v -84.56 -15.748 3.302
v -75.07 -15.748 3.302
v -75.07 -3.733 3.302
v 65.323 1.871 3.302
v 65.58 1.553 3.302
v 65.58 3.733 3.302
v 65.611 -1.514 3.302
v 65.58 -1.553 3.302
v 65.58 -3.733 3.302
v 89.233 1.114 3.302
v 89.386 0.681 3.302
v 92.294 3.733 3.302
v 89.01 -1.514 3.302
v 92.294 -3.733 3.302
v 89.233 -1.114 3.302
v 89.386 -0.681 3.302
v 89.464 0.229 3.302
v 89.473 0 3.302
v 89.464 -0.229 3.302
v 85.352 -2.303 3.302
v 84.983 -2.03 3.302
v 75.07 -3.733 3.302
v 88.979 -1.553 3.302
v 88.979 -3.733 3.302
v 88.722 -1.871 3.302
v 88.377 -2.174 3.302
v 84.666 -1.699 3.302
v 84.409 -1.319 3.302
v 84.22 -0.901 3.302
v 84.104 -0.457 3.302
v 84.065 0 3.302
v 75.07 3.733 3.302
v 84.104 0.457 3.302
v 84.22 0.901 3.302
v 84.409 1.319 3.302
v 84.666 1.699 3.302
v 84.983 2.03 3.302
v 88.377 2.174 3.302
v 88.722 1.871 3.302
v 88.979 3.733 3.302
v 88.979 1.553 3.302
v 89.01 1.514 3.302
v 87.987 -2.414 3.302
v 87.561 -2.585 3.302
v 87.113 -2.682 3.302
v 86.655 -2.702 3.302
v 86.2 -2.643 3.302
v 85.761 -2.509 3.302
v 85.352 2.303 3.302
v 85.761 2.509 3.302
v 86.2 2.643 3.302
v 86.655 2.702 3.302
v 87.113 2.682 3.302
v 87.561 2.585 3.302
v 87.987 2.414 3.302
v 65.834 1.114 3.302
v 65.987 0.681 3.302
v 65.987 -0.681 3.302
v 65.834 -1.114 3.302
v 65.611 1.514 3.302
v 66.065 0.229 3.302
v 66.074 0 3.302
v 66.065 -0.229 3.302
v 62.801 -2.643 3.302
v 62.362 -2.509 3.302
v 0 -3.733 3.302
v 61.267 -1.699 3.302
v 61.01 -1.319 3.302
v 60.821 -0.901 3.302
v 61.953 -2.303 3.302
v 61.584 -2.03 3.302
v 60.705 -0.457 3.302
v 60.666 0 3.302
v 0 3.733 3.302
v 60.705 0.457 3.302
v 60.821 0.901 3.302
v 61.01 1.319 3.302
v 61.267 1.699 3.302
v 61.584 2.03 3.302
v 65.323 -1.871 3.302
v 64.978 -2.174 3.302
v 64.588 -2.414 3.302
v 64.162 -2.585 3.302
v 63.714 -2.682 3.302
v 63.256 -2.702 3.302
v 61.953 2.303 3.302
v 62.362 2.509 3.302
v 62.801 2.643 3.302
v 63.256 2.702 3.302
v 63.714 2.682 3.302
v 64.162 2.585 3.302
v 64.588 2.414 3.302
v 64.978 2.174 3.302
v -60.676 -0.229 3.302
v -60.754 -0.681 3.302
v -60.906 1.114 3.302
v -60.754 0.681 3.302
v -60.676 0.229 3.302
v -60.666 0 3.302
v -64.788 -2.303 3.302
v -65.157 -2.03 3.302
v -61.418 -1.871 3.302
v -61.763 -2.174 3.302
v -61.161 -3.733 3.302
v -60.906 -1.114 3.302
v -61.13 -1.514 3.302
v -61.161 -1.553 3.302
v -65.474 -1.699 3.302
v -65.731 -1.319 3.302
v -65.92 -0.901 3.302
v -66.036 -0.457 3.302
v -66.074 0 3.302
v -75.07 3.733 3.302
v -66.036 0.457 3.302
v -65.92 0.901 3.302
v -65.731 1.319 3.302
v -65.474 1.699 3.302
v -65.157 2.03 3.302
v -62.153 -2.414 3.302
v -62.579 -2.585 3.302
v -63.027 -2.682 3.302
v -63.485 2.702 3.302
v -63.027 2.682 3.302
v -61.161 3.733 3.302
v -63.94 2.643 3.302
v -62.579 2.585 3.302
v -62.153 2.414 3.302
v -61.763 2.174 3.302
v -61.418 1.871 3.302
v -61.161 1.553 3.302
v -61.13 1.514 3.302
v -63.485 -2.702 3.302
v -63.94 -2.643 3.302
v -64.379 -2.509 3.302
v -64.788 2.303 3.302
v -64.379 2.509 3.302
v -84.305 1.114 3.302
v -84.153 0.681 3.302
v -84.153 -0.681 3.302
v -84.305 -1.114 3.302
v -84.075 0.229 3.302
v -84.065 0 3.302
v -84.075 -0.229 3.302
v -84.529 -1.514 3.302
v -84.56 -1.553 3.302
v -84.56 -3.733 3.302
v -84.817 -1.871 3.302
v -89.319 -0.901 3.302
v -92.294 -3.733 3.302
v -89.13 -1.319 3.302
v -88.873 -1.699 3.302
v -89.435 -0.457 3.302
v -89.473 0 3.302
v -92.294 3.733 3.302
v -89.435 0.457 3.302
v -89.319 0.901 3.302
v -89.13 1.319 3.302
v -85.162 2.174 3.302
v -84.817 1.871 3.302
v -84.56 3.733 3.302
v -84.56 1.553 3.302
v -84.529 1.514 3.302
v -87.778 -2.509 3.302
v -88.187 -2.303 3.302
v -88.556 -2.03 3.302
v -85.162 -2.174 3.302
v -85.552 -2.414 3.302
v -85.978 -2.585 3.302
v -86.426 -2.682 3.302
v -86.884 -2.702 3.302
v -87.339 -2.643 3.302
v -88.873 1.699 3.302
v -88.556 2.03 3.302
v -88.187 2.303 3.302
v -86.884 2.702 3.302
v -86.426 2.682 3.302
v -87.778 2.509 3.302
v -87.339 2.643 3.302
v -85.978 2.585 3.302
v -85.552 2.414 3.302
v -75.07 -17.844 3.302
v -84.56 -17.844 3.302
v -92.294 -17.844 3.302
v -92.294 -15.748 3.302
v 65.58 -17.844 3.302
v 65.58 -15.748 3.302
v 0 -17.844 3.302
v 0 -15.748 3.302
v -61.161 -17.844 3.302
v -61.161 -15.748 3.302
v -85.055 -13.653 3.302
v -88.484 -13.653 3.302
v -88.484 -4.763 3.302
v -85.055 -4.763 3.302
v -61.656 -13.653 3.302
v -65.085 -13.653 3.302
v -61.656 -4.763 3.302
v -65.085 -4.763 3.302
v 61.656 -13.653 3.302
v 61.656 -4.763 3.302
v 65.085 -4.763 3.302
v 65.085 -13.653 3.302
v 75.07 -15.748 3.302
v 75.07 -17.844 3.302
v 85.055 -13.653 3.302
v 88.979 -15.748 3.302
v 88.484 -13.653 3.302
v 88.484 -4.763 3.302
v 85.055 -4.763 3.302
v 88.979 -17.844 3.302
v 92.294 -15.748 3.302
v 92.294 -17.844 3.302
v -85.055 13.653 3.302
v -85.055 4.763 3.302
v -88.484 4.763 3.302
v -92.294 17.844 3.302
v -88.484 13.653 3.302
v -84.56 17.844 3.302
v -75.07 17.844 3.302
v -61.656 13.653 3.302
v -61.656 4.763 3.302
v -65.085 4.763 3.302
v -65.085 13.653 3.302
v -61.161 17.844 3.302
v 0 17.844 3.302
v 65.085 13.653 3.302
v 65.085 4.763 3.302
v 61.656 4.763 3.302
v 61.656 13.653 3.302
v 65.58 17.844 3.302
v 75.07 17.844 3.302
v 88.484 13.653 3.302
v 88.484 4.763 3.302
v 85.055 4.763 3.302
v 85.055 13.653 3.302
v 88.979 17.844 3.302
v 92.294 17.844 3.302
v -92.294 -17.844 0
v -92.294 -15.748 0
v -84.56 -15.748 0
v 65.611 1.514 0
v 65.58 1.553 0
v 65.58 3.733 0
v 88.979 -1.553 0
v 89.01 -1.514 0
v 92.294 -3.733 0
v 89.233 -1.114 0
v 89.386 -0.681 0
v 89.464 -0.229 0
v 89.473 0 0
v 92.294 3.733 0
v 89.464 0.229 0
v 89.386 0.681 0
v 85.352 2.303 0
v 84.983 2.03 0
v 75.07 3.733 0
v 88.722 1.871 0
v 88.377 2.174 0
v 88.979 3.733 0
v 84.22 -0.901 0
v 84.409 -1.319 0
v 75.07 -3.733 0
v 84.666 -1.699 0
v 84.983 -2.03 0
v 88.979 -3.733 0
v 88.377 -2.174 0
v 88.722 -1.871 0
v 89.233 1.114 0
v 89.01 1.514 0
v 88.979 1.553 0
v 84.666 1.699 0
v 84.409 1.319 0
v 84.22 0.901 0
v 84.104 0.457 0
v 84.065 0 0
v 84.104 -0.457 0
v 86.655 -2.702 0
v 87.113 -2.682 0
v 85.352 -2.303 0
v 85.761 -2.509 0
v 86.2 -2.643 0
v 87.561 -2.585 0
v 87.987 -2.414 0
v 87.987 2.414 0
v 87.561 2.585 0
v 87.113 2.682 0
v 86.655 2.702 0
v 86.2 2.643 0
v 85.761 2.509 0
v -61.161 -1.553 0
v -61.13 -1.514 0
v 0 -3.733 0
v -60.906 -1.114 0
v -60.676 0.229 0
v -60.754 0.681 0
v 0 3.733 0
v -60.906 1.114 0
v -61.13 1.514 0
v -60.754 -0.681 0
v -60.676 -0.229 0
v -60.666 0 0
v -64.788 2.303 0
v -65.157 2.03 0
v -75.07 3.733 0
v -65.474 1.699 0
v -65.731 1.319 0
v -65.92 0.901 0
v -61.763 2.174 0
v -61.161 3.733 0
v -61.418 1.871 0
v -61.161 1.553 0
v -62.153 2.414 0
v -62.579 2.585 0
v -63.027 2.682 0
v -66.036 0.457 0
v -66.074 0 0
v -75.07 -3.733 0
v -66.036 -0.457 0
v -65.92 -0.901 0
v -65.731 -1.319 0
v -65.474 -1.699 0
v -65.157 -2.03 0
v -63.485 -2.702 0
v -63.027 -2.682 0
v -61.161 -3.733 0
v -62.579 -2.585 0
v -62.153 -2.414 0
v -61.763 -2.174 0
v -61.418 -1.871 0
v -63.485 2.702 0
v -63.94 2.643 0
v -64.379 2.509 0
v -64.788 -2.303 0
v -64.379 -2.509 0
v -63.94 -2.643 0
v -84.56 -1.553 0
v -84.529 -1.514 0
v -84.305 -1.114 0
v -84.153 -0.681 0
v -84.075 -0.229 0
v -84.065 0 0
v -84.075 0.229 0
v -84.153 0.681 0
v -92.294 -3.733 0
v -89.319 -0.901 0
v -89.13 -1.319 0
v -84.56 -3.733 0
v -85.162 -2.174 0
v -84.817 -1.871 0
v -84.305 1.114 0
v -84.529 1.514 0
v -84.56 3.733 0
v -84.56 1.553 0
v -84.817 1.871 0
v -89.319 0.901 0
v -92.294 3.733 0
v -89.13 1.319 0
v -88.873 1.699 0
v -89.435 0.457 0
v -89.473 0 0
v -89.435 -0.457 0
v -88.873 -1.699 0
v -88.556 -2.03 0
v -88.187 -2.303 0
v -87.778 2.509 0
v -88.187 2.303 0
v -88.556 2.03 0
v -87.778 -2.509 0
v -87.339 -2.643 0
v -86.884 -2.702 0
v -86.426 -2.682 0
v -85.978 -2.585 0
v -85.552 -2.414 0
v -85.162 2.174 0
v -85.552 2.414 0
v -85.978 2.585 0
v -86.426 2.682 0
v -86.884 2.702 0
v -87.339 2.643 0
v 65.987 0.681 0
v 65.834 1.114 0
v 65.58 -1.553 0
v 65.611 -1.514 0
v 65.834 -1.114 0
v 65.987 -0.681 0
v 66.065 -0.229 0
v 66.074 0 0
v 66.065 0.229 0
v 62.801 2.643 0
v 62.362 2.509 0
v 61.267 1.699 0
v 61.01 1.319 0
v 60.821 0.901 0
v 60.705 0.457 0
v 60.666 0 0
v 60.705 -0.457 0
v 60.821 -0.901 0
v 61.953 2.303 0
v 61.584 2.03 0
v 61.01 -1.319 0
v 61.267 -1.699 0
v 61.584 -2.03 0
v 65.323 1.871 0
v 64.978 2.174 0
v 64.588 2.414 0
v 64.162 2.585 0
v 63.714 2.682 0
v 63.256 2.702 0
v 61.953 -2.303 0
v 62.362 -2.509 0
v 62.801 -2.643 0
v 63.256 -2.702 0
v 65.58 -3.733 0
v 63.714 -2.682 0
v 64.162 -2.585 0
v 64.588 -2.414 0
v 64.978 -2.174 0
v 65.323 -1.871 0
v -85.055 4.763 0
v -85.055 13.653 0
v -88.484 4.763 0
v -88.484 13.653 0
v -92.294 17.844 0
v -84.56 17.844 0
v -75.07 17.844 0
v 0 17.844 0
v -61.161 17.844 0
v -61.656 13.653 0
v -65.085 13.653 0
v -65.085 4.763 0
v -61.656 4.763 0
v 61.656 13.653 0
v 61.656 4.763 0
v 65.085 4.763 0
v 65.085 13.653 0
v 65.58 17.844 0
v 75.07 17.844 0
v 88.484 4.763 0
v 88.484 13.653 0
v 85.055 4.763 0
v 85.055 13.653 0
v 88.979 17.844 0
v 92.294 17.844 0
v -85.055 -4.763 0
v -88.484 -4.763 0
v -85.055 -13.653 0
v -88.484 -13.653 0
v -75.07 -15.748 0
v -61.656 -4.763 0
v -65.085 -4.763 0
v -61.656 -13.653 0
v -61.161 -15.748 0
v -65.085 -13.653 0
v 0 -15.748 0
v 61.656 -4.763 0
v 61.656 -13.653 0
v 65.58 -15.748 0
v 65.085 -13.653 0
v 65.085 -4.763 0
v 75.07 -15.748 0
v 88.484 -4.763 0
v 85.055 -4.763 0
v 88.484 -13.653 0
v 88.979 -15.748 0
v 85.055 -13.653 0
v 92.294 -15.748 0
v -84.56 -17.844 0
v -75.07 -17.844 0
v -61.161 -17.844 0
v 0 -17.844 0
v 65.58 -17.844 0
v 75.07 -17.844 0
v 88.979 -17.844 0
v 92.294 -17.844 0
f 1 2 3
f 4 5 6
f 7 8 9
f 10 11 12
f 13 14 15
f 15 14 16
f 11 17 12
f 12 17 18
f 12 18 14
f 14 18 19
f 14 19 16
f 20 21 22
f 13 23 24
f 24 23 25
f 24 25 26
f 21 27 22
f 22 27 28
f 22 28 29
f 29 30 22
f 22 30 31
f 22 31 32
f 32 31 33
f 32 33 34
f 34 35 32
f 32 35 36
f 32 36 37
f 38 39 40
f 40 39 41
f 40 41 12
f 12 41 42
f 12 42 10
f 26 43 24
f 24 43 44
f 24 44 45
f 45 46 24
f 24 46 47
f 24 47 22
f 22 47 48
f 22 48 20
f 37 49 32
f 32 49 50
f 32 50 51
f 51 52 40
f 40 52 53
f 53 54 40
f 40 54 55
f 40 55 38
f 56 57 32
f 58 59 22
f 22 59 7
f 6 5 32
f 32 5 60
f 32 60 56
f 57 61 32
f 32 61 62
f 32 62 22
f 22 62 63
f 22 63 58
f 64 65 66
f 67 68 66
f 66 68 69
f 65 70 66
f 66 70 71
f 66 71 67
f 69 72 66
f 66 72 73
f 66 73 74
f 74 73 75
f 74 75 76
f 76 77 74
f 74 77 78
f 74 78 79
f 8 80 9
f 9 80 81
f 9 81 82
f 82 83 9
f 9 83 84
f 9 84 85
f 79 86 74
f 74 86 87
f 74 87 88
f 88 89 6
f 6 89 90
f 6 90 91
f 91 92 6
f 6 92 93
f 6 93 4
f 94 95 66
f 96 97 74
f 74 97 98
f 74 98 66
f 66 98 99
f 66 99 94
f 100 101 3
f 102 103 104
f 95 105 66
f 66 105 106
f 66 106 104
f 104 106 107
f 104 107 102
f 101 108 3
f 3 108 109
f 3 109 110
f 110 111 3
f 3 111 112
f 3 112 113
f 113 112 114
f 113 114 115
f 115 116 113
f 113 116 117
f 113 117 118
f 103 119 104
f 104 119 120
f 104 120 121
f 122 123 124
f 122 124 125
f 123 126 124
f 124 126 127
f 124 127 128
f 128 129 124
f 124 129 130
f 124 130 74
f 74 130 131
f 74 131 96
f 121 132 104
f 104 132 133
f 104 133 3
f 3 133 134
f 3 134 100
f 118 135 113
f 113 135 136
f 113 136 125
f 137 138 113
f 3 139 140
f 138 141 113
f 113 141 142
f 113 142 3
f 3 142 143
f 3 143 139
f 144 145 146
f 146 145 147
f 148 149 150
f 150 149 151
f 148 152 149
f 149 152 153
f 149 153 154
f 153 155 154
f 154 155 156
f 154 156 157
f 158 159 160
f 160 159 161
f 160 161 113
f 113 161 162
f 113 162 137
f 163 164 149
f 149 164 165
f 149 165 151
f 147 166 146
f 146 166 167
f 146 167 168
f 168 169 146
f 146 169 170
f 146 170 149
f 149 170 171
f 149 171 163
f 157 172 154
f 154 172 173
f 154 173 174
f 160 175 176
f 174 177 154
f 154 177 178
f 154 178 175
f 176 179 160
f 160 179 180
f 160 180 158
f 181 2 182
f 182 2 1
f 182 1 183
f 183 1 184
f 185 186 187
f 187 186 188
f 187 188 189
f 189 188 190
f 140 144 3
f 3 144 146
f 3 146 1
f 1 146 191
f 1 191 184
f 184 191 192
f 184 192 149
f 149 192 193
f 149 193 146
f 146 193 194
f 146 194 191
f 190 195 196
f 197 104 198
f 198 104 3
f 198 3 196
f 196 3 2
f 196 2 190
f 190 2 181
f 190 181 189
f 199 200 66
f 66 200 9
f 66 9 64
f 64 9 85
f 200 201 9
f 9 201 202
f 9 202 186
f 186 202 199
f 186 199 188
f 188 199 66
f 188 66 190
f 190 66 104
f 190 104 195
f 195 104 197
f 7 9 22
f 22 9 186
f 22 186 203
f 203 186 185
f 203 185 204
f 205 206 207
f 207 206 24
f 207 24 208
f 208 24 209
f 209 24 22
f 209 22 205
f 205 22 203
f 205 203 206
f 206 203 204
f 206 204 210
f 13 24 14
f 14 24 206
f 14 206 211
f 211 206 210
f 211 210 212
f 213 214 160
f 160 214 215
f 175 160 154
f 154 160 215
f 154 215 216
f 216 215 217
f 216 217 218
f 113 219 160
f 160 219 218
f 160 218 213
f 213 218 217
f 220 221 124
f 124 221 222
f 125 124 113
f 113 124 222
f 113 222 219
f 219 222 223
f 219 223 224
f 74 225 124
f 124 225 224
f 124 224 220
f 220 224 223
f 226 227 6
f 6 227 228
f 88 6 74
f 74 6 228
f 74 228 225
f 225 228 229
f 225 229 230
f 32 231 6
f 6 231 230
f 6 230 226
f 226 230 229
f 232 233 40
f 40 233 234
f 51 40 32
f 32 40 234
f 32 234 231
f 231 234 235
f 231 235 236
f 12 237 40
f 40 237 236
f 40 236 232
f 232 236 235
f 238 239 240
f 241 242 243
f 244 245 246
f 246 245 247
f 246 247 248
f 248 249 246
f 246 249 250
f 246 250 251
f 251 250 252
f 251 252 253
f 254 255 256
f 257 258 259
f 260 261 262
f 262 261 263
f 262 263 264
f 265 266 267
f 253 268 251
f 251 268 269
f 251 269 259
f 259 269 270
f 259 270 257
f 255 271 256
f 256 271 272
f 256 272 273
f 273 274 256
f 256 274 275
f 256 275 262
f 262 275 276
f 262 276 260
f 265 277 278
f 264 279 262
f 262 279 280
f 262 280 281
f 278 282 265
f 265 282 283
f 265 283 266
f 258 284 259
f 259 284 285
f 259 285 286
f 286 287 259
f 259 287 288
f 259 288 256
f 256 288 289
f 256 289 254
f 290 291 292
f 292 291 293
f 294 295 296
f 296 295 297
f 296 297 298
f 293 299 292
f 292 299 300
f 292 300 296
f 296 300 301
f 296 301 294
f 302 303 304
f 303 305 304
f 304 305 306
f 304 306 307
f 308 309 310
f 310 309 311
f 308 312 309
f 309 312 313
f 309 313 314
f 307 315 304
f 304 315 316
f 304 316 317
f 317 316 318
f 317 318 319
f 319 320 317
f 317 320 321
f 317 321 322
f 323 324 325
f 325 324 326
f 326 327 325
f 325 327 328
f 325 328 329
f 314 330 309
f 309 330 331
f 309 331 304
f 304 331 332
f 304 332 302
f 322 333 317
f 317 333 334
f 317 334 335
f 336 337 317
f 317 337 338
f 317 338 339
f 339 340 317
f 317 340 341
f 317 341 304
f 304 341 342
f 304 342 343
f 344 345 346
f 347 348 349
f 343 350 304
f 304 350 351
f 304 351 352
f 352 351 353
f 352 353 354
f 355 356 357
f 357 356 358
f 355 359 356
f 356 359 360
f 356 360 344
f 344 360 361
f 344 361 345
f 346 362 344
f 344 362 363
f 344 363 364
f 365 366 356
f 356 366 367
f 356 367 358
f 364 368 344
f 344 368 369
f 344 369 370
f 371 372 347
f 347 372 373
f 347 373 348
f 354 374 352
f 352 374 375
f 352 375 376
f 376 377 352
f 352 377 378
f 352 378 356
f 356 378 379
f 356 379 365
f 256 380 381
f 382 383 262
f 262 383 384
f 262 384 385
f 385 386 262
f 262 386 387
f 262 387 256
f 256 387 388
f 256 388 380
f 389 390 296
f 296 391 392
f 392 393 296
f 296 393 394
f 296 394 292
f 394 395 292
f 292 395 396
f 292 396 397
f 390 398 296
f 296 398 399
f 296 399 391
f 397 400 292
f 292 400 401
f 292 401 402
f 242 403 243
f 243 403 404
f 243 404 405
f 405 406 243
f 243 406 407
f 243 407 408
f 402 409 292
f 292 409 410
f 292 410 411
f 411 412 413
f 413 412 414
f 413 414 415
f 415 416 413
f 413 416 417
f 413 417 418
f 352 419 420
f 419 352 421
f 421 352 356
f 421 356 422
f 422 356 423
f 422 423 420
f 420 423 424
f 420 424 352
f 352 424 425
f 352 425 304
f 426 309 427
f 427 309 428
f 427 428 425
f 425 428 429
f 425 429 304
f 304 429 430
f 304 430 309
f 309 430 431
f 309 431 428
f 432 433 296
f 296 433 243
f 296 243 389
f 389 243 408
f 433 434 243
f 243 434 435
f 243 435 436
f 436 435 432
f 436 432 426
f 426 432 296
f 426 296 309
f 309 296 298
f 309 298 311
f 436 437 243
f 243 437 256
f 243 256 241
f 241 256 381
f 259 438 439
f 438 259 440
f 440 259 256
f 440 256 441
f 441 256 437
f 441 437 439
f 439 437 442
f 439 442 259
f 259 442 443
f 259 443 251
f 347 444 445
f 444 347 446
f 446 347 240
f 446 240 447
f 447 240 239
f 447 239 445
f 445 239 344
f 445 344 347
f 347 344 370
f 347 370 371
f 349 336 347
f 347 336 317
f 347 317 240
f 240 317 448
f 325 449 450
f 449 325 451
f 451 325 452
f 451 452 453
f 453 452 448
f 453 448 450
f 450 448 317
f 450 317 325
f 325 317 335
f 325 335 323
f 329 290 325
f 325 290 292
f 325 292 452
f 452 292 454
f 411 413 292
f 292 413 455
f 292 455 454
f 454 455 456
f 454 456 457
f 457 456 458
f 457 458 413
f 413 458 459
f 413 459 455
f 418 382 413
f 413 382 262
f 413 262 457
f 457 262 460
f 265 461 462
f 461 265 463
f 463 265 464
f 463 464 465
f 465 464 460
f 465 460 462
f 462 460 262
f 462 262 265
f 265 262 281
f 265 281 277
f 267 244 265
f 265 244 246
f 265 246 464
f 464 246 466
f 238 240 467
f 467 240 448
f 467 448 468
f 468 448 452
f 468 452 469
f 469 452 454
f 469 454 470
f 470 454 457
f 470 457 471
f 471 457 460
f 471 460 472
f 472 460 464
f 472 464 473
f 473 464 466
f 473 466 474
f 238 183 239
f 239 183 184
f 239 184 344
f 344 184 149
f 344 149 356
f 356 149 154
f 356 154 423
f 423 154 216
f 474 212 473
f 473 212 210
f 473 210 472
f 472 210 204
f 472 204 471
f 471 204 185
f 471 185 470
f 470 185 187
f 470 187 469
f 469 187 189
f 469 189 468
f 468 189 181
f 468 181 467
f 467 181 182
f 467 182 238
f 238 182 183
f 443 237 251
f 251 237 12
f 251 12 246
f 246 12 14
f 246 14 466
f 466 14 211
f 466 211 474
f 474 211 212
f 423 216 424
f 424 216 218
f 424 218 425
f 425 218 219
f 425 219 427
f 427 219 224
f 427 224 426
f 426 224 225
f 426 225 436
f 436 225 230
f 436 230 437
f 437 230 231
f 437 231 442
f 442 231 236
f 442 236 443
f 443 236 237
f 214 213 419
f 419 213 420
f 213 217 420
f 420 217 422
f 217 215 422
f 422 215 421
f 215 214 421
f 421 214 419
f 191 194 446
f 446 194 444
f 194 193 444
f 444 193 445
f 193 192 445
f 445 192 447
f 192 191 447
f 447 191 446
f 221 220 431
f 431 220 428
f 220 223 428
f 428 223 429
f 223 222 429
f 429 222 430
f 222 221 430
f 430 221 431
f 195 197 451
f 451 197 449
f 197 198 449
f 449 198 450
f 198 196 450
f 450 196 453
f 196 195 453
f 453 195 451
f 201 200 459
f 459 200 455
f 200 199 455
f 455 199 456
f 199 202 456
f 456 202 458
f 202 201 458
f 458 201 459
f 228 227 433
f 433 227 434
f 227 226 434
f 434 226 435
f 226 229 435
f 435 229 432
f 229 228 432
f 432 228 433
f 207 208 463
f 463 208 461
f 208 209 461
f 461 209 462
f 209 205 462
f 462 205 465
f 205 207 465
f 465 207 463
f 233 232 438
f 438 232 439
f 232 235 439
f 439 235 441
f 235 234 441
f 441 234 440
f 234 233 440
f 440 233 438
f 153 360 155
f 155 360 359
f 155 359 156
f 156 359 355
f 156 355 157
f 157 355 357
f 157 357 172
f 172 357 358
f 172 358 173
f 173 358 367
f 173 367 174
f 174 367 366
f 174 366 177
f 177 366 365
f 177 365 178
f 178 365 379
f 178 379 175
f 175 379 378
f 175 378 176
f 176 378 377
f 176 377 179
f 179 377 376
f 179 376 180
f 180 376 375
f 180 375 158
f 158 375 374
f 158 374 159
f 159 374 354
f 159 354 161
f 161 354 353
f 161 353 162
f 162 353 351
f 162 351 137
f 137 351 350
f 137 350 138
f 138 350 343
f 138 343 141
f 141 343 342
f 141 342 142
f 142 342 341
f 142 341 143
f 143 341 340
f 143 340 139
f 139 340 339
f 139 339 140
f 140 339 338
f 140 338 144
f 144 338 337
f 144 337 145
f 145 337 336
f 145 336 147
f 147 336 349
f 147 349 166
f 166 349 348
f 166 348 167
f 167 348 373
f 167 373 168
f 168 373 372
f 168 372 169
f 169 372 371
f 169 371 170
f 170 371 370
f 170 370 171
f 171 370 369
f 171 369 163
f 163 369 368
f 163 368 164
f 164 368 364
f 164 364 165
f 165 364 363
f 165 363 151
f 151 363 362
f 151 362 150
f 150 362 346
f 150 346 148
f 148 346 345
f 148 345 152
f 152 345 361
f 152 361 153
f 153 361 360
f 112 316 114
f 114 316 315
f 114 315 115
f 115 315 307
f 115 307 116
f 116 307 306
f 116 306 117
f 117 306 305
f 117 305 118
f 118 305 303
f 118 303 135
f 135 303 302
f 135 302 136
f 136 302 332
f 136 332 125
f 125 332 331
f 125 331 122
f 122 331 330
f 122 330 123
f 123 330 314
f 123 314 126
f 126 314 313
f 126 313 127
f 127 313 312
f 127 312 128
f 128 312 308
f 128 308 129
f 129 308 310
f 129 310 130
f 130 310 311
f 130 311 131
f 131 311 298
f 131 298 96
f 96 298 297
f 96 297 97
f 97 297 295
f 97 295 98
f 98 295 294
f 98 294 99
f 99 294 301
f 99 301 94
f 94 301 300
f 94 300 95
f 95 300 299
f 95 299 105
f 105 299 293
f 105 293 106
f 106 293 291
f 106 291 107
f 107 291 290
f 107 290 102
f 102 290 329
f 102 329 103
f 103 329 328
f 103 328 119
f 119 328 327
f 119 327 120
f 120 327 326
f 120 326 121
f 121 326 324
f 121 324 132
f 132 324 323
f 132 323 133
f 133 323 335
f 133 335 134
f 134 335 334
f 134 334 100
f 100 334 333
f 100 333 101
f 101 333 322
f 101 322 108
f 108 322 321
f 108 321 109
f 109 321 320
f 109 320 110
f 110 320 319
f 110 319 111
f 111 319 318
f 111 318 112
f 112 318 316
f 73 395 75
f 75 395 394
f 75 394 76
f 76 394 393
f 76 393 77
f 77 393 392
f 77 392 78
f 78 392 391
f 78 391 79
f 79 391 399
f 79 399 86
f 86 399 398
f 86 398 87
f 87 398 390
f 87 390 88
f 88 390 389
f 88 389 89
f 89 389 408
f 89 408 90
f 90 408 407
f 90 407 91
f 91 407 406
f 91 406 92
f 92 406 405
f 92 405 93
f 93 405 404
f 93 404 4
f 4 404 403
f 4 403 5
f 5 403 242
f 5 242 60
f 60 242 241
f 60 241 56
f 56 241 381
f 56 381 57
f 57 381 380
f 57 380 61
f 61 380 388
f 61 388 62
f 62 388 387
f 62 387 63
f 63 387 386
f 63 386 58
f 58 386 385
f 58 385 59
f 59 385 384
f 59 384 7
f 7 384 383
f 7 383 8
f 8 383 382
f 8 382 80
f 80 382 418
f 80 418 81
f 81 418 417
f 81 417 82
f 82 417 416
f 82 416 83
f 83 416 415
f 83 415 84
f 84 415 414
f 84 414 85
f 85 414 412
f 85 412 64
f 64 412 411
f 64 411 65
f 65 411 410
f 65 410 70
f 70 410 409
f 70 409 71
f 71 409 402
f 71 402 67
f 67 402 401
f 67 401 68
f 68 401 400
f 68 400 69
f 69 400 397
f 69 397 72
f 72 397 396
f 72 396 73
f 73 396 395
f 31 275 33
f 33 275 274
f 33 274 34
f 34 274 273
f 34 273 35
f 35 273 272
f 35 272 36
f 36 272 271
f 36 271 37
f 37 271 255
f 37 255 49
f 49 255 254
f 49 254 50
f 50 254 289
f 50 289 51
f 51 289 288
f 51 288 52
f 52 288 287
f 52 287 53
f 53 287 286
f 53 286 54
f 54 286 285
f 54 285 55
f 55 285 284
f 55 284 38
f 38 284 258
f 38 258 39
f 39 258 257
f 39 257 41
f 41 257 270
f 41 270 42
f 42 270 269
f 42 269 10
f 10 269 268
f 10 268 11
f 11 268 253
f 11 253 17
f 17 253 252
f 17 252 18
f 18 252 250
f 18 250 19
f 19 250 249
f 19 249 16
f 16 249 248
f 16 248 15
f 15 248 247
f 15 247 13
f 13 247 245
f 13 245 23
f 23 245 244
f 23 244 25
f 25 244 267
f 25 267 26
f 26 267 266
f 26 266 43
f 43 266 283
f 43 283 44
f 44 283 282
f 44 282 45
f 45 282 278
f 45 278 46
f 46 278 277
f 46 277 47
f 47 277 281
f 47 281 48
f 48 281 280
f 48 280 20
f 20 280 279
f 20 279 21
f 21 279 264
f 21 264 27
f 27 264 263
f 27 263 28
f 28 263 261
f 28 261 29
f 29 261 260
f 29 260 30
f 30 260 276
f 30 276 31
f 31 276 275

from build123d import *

# Parameters (mm, degrees)
SKETCH1_W           = 184.587896
SKETCH1_H           = 35.687
SKETCH1_R           = 2.7039951
SKETCH1_W_2         = 3.429
SKETCH1_H_2         = 8.89
BOSS_EXTRUDE1_DEPTH = 3.302


with BuildPart() as part:
    # Sketch1 → Boss-Extrude1 (new body)
    with BuildSketch(Plane.XY):
        Rectangle(SKETCH1_W, SKETCH1_H)
        with Locations((-86.769448, 0)):
            Circle(SKETCH1_R, mode=Mode.SUBTRACT)
        with Locations((-63.370448, 0)):
            Circle(SKETCH1_R, mode=Mode.SUBTRACT)
        with Locations((63.370448, 0)):
            Circle(SKETCH1_R, mode=Mode.SUBTRACT)
        with Locations((86.769448, 0)):
            Circle(SKETCH1_R, mode=Mode.SUBTRACT)
        with Locations((-86.769448, 9.2075)):
            Rectangle(SKETCH1_W_2, SKETCH1_H_2, mode=Mode.SUBTRACT)
        with Locations((-86.769448, -9.2075)):
            Rectangle(SKETCH1_W_2, SKETCH1_H_2, mode=Mode.SUBTRACT)
        with Locations((-63.370448, 9.2075)):
            Rectangle(SKETCH1_W_2, SKETCH1_H_2, mode=Mode.SUBTRACT)
        with Locations((-63.370448, -9.2075)):
            Rectangle(SKETCH1_W_2, SKETCH1_H_2, mode=Mode.SUBTRACT)
        with Locations((63.370448, -9.2075)):
            Rectangle(SKETCH1_W_2, SKETCH1_H_2, mode=Mode.SUBTRACT)
        with Locations((63.370448, 9.2075)):
            Rectangle(SKETCH1_W_2, SKETCH1_H_2, mode=Mode.SUBTRACT)
        with Locations((86.769448, -9.2075)):
            Rectangle(SKETCH1_W_2, SKETCH1_H_2, mode=Mode.SUBTRACT)
        with Locations((86.769448, 9.2075)):
            Rectangle(SKETCH1_W_2, SKETCH1_H_2, mode=Mode.SUBTRACT)
    extrude(amount=BOSS_EXTRUDE1_DEPTH)


solid = part.part
